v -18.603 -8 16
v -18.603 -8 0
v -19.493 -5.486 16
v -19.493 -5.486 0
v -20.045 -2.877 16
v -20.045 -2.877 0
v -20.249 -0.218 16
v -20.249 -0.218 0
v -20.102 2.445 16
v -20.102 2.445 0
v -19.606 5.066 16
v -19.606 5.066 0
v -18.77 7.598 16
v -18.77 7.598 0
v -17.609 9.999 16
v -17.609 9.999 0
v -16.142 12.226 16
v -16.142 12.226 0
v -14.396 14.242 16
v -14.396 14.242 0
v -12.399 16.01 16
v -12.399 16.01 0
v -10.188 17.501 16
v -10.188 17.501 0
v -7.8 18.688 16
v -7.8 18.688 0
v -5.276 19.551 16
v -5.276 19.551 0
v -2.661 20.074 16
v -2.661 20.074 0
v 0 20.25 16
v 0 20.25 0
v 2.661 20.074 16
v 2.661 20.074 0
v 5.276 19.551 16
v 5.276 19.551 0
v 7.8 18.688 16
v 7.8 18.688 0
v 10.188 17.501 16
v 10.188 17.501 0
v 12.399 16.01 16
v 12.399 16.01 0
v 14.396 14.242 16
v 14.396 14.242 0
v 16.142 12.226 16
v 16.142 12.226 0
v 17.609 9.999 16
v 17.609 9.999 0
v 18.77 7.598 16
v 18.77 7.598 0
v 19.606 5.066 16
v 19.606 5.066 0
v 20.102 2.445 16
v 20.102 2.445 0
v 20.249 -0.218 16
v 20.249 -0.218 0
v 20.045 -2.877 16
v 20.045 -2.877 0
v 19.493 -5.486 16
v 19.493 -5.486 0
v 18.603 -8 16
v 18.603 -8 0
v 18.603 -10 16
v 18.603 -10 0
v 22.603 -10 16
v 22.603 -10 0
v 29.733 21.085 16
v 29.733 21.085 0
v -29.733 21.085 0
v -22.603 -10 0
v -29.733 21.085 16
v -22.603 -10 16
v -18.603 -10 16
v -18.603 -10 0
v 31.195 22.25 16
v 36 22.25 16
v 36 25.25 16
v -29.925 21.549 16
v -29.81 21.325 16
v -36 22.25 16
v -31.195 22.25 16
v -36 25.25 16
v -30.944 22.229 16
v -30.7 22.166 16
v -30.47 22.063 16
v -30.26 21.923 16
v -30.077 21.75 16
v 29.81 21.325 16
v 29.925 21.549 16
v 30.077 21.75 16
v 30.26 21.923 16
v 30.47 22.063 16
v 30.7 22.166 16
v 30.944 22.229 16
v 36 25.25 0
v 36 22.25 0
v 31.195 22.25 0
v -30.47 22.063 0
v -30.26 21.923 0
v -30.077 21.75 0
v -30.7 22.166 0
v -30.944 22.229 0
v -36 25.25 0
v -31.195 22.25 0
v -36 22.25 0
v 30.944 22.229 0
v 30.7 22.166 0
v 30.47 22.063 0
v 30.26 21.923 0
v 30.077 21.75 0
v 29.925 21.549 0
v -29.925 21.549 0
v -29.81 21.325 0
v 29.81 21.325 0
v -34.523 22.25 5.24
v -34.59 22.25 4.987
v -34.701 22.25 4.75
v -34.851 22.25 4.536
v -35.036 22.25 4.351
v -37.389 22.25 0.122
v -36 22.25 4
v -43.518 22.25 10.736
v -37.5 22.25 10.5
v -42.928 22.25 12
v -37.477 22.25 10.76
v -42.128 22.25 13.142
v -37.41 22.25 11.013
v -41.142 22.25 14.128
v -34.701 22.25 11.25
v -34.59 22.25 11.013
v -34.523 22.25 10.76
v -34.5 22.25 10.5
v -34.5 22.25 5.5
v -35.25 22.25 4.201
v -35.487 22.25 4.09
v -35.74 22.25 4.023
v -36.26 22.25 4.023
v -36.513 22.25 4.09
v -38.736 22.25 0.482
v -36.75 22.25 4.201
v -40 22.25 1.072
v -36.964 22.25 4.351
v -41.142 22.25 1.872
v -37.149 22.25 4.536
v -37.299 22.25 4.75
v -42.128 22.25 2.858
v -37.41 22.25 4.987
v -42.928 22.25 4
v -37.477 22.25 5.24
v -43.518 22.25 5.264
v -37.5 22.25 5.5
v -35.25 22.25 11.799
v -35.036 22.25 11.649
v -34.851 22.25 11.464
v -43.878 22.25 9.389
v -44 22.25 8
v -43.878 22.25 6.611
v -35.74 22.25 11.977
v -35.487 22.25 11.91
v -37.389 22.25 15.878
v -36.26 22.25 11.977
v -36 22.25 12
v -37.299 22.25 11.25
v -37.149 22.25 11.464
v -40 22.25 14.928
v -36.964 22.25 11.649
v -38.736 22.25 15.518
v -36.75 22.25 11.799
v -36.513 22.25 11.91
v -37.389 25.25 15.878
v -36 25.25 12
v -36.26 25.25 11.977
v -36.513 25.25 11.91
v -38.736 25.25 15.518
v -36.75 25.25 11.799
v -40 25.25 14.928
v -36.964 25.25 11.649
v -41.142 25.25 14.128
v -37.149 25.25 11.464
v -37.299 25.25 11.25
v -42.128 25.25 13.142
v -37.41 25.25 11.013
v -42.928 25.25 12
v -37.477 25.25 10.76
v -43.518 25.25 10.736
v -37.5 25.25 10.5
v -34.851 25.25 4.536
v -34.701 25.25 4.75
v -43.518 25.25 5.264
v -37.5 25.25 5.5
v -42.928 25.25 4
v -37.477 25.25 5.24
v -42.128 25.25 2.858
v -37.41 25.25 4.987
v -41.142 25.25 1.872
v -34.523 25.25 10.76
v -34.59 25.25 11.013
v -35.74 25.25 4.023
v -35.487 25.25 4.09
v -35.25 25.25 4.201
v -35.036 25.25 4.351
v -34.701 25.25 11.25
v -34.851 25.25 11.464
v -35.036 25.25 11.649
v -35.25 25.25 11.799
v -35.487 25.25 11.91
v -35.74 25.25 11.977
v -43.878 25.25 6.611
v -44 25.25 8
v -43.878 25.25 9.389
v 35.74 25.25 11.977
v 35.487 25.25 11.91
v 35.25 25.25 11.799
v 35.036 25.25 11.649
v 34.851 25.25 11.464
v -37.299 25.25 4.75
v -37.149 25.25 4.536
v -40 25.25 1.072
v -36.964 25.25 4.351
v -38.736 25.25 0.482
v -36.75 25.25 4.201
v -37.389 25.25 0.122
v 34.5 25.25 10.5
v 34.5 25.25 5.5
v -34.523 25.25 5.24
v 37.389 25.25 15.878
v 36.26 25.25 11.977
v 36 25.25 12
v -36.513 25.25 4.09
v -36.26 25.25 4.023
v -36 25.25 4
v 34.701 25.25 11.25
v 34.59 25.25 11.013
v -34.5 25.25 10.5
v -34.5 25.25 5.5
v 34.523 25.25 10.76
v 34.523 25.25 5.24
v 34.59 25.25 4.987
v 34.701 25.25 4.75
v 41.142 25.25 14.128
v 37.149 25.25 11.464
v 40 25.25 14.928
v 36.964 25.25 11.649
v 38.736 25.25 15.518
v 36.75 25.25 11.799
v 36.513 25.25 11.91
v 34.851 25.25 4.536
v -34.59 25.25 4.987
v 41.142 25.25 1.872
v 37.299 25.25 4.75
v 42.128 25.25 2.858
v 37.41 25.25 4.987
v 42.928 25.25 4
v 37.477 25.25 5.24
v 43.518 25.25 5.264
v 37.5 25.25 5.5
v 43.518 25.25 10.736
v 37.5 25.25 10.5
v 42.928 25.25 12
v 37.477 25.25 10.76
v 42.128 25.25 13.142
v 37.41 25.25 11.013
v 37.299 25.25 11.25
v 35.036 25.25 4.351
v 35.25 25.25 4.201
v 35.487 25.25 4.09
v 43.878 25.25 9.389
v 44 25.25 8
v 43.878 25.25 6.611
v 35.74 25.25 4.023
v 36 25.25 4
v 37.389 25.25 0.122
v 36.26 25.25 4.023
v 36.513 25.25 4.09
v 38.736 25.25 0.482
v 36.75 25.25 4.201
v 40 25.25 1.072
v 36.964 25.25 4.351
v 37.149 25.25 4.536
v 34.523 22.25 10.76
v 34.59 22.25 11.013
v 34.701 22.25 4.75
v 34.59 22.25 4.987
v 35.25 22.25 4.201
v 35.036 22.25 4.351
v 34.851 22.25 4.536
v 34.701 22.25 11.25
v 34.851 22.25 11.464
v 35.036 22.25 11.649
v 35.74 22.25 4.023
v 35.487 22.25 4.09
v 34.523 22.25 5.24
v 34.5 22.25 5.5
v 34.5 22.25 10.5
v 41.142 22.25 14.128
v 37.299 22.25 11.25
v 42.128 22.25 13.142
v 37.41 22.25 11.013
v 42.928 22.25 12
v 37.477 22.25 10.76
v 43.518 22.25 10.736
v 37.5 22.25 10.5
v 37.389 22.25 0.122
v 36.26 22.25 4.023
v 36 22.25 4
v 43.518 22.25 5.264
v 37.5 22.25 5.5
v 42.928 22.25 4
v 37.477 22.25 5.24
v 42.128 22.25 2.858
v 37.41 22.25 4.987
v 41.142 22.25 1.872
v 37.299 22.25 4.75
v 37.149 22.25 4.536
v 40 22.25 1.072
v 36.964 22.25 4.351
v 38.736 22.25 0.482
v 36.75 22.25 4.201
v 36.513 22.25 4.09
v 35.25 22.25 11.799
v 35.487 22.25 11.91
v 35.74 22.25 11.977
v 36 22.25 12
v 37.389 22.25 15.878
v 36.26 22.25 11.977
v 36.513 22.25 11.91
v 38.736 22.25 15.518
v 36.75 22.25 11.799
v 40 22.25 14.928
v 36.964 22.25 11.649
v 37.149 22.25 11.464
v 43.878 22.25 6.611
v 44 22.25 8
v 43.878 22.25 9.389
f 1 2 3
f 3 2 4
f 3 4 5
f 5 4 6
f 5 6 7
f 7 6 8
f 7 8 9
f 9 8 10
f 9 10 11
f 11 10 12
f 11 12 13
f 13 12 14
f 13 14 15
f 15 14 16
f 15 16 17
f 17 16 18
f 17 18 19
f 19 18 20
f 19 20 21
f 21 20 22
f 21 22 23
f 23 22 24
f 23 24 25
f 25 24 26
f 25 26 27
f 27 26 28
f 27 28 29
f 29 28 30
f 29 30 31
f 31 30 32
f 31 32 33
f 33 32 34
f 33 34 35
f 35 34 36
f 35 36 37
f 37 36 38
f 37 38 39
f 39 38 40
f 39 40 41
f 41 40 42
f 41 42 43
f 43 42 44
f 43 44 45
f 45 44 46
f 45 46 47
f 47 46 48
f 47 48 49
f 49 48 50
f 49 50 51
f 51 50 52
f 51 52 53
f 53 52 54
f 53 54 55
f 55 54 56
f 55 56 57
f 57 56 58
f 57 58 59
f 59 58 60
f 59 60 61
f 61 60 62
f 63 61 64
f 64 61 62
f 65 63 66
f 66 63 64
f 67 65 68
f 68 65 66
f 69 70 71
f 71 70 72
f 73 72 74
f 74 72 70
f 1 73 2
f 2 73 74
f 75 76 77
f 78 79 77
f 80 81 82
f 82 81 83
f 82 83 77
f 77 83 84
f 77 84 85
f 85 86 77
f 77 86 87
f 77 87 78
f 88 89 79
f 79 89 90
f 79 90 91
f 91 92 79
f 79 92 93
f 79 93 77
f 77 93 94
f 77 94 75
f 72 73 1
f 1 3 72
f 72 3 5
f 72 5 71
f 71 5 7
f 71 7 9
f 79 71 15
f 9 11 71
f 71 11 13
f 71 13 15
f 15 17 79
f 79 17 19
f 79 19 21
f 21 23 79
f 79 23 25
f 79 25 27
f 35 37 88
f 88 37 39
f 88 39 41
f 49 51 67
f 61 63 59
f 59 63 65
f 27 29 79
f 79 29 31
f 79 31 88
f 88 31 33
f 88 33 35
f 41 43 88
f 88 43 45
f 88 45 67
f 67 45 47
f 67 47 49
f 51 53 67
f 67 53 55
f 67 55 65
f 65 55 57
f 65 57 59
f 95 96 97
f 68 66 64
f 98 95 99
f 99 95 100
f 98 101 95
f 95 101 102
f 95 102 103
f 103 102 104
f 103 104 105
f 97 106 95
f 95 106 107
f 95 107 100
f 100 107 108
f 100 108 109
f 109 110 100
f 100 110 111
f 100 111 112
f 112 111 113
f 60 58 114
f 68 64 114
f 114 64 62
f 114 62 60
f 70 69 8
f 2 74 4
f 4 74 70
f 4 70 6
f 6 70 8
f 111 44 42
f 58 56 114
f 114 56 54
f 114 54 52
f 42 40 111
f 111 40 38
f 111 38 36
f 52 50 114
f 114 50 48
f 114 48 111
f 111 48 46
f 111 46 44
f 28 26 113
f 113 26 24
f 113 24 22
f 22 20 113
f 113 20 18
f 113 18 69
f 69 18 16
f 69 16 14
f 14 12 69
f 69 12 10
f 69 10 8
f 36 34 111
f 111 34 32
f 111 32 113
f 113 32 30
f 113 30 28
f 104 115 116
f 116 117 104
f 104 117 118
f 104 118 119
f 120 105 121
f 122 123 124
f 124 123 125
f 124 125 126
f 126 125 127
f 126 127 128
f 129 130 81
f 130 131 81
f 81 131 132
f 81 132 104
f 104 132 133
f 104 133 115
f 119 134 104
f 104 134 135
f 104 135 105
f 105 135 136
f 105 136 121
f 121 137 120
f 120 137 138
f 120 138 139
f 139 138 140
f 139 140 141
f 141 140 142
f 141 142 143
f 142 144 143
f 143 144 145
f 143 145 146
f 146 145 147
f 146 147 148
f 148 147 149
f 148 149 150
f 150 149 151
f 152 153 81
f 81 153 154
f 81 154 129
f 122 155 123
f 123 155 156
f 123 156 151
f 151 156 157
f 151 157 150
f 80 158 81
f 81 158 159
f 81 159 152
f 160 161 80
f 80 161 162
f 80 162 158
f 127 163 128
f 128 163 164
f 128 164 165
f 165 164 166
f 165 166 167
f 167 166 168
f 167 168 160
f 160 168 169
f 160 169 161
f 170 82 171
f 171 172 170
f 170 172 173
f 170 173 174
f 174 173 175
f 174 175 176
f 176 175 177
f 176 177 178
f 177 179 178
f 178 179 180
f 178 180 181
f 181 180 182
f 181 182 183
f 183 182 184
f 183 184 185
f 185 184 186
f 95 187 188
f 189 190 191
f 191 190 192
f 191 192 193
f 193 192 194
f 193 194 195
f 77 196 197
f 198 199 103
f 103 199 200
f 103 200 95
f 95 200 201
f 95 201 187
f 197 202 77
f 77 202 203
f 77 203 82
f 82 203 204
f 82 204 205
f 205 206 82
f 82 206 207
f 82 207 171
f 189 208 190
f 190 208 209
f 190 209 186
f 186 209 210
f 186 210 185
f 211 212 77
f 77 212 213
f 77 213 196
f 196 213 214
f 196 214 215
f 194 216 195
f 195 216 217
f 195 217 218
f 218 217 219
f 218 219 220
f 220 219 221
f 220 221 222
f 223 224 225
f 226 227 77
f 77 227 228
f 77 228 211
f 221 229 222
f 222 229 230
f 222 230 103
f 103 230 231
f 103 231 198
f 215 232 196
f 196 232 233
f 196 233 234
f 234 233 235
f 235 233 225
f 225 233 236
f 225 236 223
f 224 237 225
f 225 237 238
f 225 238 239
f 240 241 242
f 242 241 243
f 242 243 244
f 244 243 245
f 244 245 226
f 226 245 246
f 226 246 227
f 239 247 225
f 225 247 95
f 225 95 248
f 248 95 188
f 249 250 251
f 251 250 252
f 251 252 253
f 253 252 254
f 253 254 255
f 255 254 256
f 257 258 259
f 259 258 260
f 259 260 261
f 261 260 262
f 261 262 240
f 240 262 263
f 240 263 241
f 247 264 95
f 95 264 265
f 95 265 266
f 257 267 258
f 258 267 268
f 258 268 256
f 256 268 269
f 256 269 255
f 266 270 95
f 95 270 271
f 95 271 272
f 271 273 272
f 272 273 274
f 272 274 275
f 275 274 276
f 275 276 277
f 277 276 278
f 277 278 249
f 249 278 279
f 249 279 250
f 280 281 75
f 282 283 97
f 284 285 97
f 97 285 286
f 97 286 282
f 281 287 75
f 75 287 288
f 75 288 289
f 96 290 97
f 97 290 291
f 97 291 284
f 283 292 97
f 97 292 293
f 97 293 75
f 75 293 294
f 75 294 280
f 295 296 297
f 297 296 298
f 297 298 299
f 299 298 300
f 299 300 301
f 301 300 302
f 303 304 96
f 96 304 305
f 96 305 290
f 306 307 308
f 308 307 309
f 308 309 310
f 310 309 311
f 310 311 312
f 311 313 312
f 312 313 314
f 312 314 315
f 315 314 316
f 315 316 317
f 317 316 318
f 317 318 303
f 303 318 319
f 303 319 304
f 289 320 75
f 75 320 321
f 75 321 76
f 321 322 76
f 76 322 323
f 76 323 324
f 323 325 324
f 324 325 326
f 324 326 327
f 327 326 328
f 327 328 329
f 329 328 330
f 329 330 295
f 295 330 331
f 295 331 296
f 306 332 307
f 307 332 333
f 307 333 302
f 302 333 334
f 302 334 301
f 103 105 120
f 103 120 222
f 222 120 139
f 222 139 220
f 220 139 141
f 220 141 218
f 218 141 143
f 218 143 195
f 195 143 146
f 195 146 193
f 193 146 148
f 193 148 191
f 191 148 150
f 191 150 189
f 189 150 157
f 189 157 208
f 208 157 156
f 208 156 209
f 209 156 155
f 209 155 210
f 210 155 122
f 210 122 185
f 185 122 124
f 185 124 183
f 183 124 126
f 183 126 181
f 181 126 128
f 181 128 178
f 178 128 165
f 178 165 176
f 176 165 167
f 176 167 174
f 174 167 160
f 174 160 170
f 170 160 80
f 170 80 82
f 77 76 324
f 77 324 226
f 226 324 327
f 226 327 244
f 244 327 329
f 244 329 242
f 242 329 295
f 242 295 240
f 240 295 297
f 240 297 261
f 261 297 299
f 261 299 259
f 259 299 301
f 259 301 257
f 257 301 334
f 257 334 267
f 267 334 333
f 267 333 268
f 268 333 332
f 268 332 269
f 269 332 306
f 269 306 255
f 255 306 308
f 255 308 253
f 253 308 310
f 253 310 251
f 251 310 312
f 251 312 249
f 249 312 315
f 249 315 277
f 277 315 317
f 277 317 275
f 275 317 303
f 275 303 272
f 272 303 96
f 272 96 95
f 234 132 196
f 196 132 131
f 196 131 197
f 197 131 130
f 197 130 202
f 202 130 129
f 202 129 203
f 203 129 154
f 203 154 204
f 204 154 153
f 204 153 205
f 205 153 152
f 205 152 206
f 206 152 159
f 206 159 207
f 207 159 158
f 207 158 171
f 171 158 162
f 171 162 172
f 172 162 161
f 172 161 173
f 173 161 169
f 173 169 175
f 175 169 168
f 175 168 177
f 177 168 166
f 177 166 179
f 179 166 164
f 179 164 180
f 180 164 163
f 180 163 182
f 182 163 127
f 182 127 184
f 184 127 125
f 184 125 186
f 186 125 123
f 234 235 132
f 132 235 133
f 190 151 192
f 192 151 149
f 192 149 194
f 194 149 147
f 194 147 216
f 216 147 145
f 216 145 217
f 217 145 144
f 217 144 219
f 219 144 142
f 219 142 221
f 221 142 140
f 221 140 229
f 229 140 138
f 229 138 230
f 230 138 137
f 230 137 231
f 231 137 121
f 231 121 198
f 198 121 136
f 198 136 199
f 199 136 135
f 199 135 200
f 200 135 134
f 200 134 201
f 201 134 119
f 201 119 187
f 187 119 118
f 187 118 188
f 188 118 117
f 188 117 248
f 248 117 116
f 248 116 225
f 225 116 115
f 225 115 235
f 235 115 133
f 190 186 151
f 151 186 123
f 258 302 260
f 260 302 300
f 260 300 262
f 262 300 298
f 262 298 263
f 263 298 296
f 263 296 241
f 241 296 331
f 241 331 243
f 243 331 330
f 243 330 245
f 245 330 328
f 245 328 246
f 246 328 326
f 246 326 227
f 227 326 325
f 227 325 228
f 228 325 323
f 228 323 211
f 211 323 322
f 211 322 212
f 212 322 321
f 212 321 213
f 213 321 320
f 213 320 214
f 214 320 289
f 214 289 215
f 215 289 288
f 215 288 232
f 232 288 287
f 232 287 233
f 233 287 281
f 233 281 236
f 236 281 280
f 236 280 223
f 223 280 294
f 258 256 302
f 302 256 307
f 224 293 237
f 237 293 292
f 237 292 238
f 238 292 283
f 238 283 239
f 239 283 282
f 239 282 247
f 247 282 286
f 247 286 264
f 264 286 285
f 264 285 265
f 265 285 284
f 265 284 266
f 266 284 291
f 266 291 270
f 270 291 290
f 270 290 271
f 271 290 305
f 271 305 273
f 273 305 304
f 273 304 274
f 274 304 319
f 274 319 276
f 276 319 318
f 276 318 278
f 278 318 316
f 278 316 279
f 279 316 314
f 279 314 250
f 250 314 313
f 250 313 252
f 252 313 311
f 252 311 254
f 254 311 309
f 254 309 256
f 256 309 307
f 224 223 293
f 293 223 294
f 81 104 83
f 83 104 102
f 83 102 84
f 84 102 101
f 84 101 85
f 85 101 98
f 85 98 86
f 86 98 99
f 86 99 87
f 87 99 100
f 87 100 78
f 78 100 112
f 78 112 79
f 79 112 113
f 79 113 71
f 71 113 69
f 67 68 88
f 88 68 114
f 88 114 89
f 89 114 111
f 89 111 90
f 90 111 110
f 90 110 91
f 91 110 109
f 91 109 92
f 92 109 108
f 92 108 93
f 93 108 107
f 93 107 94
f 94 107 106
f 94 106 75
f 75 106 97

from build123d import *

# Parameters (mm, degrees)
SALIENTE_EXTRUIR1_DEPTH = 16
SALIENTE_EXTRUIR2_DEPTH = 3
REDONDEO1_R             = 1.5


with BuildPart() as part:
    # Croquis1 → Saliente-Extruir1 (new body)
    with BuildSketch(Plane.XY):
        with BuildLine():
            Line((18.602755172, -8), (18.602755172, -10))
            Line((18.602755172, -10), (22.602755172, -10))
            Line((22.602755172, -10), (30, 22.25))
            Line((30, 22.25), (-30, 22.25))
            Line((-30, 22.25), (-22.602755172, -10))
            Line((-22.602755172, -10), (-18.602755172, -10))
            Line((-18.602755172, -10), (-18.602755172, -8))
            ThreePointArc((-18.602755172, -8), (0, 20.25), (18.602755172, -8))
        make_face()
    extrude(amount=SALIENTE_EXTRUIR1_DEPTH)

    # Croquis2 → Saliente-Extruir2 (add)
    with BuildSketch(Plane(origin=(0, 22.25, 0), x_dir=(1, 0, 0), z_dir=(0, 1, 0))):
        with BuildLine():
            Line((30, 0), (-30, 0))
            Line((-30, 0), (-36, 0))
            ThreePointArc((-36, 0), (-44, -8), (-36, -16))
            Line((-36, -16), (-30, -16))
            Line((-30, -16), (30, -16))
            Line((30, -16), (36, -16))
            ThreePointArc((36, -16), (44, -8), (36, 0))
            Line((36, 0), (30, 0))
        make_face()
        with BuildLine():
            Line((-37.5, -10.5), (-37.5, -5.5))
            ThreePointArc((-37.5, -5.5), (-36, -4), (-34.5, -5.5))
            Line((-34.5, -5.5), (-34.5, -10.5))
            ThreePointArc((-34.5, -10.5), (-36, -12), (-37.5, -10.5))
        make_face(mode=Mode.SUBTRACT)
        with BuildLine():
            Line((34.5, -10.5), (34.5, -5.5))
            ThreePointArc((34.5, -5.5), (36, -4), (37.5, -5.5))
            Line((37.5, -5.5), (37.5, -10.5))
            ThreePointArc((37.5, -10.5), (36, -12), (34.5, -10.5))
        make_face(mode=Mode.SUBTRACT)
    extrude(amount=SALIENTE_EXTRUIR2_DEPTH)

    # Redondeo1
    redondeo1_edges = [part.edges().sort_by_distance(p)[0] for p in [
        (-30, 22.25, 8),
        (30, 22.25, 8),
    ]]
    fillet(redondeo1_edges, radius=REDONDEO1_R)


solid = part.part
